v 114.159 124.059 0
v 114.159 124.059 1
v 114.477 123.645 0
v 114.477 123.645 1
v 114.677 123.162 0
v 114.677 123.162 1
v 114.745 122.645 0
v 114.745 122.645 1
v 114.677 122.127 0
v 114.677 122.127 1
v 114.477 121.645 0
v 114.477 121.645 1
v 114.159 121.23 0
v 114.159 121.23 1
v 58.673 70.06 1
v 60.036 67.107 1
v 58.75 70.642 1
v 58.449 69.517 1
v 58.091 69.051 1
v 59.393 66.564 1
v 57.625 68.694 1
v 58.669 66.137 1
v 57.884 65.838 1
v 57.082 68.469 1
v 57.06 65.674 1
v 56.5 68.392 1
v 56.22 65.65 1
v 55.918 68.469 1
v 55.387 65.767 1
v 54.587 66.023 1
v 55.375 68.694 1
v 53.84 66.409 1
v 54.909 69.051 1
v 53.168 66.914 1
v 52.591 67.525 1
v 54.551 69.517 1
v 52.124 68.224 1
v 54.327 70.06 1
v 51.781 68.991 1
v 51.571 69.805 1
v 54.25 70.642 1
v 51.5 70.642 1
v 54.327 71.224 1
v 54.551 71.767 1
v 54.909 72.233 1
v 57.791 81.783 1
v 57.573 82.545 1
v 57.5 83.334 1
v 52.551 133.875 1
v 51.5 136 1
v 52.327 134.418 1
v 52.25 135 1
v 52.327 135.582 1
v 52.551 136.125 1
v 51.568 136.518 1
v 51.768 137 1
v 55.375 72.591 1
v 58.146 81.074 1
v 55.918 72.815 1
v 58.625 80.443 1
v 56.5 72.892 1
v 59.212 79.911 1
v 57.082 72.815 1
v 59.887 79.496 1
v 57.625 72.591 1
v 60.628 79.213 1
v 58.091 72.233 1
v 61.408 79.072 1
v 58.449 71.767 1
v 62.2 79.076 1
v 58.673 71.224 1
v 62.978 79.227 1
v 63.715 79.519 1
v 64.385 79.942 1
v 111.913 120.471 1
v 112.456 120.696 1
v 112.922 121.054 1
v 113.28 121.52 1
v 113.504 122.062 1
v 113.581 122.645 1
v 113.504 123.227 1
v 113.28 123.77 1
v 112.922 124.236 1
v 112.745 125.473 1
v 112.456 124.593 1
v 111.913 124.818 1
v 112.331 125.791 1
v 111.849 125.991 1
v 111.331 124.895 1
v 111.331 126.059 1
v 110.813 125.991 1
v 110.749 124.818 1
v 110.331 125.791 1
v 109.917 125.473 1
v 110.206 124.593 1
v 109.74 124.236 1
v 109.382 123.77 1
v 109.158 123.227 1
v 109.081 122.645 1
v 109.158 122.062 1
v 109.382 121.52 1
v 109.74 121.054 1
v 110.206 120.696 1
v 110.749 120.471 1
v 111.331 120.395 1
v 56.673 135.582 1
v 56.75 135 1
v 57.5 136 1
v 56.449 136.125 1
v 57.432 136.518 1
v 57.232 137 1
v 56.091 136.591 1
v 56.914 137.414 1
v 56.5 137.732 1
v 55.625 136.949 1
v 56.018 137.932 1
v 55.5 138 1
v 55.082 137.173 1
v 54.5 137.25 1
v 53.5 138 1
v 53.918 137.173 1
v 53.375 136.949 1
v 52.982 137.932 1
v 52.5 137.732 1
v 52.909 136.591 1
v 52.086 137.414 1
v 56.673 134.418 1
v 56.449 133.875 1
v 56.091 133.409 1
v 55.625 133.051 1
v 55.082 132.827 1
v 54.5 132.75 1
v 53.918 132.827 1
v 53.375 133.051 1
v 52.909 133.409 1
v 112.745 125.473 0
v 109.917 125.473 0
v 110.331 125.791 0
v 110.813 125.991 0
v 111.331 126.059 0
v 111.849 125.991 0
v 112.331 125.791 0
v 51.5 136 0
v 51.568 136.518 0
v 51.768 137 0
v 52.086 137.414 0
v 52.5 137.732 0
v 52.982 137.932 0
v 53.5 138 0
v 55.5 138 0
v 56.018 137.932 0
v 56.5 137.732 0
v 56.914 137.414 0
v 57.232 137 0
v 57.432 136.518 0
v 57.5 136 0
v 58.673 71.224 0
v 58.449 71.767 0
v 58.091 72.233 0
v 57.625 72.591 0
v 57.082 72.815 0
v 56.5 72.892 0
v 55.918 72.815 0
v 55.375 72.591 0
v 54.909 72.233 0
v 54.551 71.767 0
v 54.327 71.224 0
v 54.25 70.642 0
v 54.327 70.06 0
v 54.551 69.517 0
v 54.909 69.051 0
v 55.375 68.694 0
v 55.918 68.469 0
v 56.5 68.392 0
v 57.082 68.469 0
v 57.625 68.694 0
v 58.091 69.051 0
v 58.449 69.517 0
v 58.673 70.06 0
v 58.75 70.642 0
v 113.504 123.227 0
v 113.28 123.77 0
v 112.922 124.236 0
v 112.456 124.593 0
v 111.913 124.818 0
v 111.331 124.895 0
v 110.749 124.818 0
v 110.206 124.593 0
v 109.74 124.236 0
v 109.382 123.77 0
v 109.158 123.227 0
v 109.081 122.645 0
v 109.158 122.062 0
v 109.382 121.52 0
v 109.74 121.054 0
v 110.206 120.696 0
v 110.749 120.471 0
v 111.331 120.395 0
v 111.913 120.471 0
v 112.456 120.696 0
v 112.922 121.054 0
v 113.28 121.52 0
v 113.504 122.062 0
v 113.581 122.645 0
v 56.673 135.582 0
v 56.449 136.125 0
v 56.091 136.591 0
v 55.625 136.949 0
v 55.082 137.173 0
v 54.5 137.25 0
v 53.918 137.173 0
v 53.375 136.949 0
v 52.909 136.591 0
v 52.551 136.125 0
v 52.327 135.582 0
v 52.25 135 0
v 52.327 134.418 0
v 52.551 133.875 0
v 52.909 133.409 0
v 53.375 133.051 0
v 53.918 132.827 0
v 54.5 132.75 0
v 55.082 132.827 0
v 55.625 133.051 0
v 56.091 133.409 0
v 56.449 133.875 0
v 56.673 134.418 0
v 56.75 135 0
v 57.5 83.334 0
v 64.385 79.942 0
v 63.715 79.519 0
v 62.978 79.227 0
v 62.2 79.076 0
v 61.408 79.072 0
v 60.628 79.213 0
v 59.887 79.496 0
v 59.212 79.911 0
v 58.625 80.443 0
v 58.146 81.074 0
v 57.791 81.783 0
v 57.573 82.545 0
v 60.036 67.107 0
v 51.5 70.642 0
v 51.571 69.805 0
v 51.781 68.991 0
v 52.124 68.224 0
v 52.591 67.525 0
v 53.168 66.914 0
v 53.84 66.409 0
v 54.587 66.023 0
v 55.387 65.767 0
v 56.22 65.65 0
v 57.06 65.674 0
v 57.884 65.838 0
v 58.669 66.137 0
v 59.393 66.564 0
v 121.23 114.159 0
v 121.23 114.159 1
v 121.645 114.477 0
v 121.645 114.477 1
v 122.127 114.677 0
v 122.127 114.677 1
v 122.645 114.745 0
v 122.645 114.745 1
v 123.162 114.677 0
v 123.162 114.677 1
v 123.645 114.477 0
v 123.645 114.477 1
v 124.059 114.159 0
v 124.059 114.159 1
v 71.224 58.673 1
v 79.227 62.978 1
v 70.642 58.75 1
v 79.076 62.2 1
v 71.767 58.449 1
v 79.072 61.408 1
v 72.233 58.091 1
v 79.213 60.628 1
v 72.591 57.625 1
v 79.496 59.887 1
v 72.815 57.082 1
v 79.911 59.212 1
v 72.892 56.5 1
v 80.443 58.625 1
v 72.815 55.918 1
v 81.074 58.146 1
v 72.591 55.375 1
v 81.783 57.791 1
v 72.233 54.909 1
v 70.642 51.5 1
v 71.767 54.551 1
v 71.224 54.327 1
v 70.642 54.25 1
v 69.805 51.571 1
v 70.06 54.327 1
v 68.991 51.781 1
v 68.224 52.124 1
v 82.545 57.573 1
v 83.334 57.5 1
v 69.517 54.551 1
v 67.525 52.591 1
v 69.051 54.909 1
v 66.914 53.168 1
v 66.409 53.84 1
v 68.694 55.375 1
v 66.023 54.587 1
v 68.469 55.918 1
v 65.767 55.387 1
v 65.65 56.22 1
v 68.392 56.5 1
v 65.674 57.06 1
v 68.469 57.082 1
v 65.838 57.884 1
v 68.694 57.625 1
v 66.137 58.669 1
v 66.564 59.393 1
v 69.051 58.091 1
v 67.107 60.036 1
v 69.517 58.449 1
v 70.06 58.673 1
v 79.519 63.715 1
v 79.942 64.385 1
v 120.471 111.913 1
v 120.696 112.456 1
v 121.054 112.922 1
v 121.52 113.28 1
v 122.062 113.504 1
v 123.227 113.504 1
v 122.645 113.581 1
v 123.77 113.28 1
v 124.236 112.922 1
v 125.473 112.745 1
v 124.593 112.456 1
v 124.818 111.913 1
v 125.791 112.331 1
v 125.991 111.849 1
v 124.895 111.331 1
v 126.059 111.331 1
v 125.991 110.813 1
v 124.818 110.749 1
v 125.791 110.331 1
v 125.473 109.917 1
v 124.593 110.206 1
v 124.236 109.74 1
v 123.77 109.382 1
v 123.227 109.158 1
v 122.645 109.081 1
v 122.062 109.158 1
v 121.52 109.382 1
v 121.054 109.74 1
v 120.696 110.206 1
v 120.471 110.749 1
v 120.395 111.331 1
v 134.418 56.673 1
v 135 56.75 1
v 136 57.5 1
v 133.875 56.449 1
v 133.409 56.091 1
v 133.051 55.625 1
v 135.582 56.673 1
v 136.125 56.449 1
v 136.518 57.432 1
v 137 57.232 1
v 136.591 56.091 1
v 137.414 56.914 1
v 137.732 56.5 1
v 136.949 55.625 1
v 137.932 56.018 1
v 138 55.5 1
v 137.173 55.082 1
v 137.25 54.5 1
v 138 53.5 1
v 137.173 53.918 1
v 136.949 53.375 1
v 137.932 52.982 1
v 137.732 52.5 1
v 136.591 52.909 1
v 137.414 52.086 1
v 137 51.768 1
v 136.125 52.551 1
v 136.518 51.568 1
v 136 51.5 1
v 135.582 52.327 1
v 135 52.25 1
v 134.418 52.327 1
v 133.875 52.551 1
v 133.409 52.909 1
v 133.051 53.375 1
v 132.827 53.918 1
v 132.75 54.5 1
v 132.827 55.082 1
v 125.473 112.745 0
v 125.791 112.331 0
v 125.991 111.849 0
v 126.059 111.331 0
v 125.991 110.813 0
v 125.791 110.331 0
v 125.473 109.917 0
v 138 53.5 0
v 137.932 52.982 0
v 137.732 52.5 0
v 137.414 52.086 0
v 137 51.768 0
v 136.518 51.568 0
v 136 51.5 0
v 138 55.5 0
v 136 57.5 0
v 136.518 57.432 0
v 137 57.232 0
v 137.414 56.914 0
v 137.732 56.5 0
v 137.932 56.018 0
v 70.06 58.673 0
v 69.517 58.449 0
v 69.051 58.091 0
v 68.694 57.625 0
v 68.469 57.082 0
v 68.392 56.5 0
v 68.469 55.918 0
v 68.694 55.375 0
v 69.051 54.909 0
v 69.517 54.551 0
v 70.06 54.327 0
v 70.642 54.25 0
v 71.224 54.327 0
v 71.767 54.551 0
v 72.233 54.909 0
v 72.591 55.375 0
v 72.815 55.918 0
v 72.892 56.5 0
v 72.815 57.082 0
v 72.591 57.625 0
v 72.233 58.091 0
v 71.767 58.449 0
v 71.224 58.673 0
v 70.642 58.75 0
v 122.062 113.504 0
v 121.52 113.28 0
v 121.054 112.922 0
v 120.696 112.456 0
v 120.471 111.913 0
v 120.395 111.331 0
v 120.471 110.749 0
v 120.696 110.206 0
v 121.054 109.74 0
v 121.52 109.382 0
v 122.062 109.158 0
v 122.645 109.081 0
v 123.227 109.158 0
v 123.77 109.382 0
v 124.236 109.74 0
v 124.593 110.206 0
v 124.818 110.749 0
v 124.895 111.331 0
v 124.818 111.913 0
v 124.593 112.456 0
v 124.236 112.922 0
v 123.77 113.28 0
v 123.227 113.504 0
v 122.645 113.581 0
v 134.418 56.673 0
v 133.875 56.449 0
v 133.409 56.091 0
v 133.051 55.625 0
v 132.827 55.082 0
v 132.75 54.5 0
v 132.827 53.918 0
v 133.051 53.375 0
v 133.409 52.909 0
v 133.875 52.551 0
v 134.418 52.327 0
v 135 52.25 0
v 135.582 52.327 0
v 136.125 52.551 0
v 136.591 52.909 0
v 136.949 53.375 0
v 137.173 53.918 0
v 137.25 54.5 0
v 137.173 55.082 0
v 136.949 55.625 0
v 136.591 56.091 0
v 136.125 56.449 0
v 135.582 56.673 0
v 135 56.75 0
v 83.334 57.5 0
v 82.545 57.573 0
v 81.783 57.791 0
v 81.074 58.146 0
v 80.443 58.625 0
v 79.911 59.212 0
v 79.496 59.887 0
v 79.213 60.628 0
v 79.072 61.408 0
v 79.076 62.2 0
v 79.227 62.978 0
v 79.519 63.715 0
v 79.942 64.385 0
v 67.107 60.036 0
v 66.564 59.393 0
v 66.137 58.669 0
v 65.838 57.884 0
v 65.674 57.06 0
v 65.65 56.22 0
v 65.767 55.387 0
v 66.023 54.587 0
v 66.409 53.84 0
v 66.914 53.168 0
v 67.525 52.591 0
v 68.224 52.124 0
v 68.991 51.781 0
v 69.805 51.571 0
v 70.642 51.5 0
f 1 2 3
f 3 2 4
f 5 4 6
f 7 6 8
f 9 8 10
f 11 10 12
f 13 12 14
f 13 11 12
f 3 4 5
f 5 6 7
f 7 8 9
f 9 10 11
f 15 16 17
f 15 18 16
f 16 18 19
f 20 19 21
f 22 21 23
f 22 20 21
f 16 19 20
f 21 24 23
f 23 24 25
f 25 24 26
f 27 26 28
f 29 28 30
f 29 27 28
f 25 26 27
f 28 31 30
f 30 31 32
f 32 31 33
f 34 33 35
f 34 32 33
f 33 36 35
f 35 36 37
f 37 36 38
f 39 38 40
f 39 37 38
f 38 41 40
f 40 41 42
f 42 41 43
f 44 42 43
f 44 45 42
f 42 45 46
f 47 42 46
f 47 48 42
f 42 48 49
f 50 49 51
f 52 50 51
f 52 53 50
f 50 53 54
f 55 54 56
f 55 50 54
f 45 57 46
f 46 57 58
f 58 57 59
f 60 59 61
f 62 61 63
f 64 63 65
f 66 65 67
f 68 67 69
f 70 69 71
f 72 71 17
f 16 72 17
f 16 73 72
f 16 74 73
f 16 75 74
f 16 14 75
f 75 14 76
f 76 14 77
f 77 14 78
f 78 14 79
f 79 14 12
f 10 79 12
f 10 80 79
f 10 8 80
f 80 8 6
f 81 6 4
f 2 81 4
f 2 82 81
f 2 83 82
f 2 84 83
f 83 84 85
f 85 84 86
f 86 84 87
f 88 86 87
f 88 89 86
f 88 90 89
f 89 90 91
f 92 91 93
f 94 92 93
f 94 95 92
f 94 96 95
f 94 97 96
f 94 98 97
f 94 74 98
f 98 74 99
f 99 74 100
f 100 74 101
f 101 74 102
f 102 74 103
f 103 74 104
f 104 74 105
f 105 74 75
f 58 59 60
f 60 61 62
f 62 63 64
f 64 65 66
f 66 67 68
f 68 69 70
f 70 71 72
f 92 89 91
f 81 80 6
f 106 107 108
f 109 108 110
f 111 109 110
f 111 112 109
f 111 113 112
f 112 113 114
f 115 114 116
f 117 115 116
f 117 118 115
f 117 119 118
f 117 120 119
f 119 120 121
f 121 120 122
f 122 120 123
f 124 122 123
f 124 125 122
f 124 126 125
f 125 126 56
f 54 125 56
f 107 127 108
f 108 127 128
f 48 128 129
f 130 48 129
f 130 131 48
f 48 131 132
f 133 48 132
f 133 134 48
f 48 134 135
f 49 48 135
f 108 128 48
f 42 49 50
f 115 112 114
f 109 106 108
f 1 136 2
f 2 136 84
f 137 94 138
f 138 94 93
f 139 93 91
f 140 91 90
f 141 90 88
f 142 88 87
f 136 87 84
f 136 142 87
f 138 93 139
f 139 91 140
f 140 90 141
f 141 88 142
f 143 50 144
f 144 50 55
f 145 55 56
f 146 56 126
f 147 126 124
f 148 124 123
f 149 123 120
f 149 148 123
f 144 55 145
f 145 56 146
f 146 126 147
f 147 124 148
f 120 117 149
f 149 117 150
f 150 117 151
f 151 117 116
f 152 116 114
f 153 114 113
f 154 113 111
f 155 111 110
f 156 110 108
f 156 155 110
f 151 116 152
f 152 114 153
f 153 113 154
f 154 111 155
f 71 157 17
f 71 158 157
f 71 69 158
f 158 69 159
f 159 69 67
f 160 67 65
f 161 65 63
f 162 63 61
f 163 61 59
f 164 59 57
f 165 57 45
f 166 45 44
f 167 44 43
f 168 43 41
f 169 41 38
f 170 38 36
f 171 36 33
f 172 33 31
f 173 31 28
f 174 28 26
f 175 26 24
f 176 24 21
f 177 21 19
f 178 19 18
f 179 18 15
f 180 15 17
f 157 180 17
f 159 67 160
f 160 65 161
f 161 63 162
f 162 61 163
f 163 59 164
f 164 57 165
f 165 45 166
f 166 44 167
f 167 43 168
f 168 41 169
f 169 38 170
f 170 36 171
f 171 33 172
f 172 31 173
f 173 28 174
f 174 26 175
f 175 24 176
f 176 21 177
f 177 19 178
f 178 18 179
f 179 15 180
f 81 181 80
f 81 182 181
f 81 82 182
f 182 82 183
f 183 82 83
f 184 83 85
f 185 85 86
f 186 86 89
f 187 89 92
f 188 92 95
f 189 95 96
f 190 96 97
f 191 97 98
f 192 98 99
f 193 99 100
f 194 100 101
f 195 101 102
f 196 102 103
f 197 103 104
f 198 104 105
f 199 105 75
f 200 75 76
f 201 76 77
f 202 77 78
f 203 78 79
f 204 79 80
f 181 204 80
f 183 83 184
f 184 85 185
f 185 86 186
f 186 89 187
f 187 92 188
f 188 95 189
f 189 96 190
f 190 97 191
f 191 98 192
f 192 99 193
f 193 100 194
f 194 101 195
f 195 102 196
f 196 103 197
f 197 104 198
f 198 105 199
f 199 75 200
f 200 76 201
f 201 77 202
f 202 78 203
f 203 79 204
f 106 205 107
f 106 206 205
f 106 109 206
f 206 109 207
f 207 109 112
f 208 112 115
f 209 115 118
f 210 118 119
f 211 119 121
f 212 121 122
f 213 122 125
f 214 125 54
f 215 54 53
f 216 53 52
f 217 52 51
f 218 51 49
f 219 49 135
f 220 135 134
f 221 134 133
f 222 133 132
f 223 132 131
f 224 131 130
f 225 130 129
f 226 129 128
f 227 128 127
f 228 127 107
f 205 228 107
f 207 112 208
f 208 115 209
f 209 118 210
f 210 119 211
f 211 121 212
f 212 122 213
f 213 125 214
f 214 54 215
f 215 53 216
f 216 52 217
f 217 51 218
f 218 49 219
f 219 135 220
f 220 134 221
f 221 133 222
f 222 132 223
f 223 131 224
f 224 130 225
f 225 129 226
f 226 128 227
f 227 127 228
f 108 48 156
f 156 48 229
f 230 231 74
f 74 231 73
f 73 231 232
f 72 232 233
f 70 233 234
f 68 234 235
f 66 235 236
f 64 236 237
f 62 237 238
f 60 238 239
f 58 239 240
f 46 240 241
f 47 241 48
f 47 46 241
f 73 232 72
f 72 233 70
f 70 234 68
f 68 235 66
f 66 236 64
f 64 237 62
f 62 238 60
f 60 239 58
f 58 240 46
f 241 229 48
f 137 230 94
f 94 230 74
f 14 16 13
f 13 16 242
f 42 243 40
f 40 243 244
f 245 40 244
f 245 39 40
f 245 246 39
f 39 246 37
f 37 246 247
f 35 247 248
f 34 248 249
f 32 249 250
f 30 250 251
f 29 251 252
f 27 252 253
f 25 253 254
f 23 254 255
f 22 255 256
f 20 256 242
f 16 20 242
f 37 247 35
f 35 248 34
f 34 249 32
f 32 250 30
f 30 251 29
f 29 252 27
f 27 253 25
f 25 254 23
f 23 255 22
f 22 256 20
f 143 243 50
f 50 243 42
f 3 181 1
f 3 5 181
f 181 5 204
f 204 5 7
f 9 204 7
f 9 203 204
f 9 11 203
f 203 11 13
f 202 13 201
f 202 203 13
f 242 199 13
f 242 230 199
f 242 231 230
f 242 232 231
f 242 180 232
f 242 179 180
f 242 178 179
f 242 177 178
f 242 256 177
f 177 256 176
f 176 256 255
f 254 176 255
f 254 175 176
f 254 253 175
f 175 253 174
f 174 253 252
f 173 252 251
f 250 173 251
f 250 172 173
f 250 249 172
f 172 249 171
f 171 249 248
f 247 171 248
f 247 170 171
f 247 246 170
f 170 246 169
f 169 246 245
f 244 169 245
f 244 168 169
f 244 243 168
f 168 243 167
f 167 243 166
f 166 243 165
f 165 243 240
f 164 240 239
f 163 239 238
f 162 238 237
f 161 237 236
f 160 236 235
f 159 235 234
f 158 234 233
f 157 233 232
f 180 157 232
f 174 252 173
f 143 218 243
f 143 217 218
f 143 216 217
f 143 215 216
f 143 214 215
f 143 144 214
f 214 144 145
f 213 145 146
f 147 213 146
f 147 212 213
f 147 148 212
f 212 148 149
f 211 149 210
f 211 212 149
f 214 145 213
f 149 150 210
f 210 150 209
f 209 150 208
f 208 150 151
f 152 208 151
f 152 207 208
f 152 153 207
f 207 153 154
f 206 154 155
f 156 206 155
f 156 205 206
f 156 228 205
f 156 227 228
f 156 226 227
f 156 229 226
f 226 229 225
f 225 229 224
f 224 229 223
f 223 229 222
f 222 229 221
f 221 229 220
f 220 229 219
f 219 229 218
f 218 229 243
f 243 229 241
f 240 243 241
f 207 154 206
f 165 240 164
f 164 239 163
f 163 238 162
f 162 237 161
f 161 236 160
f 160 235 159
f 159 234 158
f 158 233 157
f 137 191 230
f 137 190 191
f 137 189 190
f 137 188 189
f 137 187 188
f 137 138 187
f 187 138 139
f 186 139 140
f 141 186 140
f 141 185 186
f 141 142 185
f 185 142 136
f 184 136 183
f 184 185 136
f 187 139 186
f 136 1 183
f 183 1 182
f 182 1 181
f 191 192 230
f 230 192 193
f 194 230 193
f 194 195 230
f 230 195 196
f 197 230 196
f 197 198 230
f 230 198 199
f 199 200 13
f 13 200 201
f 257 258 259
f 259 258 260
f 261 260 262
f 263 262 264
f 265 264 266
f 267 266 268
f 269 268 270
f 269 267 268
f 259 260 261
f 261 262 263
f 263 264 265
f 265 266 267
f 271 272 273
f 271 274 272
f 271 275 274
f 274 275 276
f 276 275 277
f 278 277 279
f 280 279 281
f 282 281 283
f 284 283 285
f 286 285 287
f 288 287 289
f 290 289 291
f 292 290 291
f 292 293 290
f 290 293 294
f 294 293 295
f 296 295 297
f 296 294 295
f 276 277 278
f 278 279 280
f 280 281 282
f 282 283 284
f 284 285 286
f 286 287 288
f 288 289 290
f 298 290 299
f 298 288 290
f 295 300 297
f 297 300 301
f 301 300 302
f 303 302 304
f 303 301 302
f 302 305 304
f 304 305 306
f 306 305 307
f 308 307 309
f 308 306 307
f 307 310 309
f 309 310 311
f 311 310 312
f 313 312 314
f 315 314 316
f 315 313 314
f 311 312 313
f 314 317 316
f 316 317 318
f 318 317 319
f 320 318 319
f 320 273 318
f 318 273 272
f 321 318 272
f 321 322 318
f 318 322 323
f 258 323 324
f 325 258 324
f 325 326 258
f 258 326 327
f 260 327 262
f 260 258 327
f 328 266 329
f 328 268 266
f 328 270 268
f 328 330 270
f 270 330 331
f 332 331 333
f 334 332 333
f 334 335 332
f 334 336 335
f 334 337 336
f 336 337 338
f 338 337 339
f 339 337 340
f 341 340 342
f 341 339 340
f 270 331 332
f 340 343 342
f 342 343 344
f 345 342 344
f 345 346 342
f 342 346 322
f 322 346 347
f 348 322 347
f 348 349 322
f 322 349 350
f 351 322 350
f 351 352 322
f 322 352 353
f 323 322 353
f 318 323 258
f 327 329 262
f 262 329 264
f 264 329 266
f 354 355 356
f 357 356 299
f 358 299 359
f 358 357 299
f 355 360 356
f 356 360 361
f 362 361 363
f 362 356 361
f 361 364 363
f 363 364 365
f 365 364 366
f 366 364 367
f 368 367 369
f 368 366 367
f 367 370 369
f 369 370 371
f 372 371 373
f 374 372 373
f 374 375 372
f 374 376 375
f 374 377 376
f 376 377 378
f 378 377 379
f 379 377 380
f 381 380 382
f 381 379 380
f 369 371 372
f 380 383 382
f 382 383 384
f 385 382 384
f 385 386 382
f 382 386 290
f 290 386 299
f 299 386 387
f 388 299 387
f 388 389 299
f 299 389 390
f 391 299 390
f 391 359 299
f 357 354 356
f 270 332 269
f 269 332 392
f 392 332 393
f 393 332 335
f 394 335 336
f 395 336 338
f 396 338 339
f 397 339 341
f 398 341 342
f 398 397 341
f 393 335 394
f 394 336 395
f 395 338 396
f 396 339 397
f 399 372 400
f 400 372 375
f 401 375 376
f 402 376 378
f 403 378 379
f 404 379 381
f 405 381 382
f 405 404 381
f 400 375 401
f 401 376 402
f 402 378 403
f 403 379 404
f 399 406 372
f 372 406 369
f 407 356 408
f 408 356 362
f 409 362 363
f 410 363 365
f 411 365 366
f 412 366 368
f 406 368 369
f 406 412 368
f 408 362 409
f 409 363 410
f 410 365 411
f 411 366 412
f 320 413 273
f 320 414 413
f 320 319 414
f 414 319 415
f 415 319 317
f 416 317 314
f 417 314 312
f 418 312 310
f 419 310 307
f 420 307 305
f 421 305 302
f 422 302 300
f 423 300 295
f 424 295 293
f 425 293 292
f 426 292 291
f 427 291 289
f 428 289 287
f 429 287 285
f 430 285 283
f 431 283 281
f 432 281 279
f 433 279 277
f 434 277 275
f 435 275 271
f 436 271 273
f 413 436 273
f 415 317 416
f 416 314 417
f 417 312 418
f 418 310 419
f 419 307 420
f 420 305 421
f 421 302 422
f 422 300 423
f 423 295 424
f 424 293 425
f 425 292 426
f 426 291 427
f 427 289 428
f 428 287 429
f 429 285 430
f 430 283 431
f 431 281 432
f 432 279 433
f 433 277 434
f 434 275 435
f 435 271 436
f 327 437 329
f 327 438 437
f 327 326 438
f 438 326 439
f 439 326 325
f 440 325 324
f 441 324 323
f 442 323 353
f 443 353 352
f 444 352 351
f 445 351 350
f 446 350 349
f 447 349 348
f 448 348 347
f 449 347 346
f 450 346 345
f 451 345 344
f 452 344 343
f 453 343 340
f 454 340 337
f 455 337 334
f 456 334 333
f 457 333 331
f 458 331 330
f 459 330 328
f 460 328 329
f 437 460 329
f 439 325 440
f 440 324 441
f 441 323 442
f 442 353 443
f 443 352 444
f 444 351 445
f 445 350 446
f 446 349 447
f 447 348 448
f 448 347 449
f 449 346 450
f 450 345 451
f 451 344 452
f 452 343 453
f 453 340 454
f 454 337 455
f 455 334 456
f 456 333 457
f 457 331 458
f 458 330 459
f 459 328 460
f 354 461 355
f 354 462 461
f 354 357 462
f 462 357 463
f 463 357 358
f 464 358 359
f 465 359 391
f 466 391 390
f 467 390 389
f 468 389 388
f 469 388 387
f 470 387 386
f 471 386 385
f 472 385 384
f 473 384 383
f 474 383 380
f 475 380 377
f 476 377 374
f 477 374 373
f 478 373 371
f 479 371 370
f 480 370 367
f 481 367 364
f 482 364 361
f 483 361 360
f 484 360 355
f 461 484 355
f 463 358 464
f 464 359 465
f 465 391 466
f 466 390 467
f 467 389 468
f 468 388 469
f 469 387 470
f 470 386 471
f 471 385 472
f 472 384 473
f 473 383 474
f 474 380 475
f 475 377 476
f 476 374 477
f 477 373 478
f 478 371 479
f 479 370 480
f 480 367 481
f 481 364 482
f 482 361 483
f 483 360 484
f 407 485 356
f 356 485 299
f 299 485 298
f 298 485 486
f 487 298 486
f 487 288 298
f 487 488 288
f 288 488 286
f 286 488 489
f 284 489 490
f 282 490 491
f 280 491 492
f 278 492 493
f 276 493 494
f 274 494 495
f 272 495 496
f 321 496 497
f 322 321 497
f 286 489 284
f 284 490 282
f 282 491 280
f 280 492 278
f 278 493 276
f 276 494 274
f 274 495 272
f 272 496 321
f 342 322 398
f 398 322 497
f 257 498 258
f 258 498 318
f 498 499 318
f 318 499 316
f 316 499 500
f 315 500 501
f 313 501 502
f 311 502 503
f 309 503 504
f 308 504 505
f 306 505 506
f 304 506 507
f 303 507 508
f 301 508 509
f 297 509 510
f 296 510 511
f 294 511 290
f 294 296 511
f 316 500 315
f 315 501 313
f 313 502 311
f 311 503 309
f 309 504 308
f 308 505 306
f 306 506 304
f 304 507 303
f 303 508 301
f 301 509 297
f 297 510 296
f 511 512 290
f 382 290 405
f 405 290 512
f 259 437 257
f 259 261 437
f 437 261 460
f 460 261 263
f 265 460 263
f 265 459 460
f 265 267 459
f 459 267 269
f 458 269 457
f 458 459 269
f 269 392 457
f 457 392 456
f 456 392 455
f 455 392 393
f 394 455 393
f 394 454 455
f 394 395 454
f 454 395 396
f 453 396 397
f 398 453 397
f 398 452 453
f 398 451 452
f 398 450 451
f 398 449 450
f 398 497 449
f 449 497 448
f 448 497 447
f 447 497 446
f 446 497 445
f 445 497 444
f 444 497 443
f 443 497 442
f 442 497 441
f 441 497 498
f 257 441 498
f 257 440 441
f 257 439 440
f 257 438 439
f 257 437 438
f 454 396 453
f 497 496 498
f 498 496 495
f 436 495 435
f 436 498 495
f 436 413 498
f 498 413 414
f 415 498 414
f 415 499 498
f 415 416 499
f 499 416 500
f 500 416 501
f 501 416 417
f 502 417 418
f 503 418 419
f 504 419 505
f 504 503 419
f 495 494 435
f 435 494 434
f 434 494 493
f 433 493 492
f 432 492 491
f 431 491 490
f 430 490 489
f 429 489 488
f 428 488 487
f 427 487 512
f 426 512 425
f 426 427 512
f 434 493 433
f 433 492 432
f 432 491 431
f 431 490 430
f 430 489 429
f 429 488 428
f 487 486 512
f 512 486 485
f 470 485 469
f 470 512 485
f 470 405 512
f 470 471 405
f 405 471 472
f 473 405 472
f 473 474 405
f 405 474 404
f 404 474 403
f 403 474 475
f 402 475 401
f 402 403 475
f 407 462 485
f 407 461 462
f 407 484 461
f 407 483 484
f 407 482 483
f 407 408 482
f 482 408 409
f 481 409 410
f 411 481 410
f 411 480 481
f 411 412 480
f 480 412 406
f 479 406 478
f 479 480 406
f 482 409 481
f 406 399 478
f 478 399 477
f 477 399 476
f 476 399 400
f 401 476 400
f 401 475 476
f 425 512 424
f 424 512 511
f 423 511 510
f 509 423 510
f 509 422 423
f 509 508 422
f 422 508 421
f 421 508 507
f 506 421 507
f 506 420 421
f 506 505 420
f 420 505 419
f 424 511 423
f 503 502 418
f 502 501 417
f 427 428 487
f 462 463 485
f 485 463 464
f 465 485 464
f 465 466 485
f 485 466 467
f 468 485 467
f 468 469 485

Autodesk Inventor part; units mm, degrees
ref_plane "YZ Plane" through (0, 0, 0) normal (1, 0, 0) x (0, 1, 0)
ref_plane "XZ Plane" through (0, 0, 0) normal (0, 1, 0) x (-1, 0, 0)
sketch "Sketch1" plane through (0, 0, 0) normal (0, 0, 1) x (1, 0, 0)
  line L0 (-41.5, 58) -> (41.5, 58)
  line L1 (41.5, 58) -> (41.5, 158)
  line L2 (41.5, 158) -> (-41.5, 158)
  line L3 (-41.5, 158) -> (-41.5, 58)
  line L4 (58, 41.5) -> (158, 41.5)
  line L5 (158, 41.5) -> (158, -41.5)
  line L6 (158, -41.5) -> (58, -41.5)
  line L7 (58, -41.5) -> (58, 41.5)
  line L8 (-131.1952, 0) -> (204.4844, 0) construction
  line L9 (-48, 48) -> (48, 48)
  line L10 (48, 48) -> (48, -48)
  line L11 (48, -48) -> (-48, -48)
  line L12 (-48, -48) -> (-48, 48)
  line L13 (0, 180.9439) -> (0, -136.3054) construction
  point P0 (0, 0)
  point P1 (-48, 0)
  point P2 (0, 48)
  point P3 (0, 58)
  point P4 (58, 0)
  dimension "d0" = 83
  dimension "d1" = 100
  dimension "d2" = 100
  dimension "d3" = 83
  dimension "d5" = 96
  dimension "d6" = 96
  dimension "d7" = 10
  dimension "d8" = 10
sketch "Sketch2" plane through (0, 0, 0) normal (0, 0, 1) x (1, 0, 0)
  line L0 (41.5, 158) -> (-41.5, 158) projected
  line L1 (41.5, 58) -> (41.5, 158) projected
  line L2 (-48, 48) -> (48, 48) projected
  line L3 (48, 48) -> (48, -48) projected
  line L4 (58, -41.5) -> (58, 41.5) projected
  line L5 (58, 41.5) -> (158, 41.5) projected
  line L6 (-41.5, 58) -> (41.5, 58) projected
  line L7 (158, 41.5) -> (158, -41.5) projected
  line L8 (48, 48) -> (136.7868, 136.7868) construction
  line L9 (35.5, 78) -> (57.5, 78)
  line L10 (57.5, 78) -> (57.5, 138)
  line L11 (57.5, 138) -> (35.5, 138)
  line L12 (35.5, 138) -> (35.5, 78)
  line L13 (41.5, 108) -> (-41.5, 108) construction
  line L14 (108, 41.5) -> (108, -41.5) construction
  line L15 (41.5, 158) -> (220.1006, 158) construction
  line L16 (158, 41.5) -> (158, 206.0131) construction
  line L17 (115.5736, 158) -> (158, 115.5736) construction
  line L18 (41.5, 138) -> (41.5, 78) construction
  line L19 (51.5, 138) -> (51.5, 78) construction
  line L20 (46.5, 138) -> (46.5, 78) construction
  line L21 (51.5, 158) -> (51.5, 70.6421)
  line L22 (60.0355, 67.1066) -> (133.2513, 140.3223)
  arc A0 (51.5, 158) -> (133.2513, 140.3223) centre (109.2071, 226.9991) ccw
  line L23 (68.9045, 84.4609) -> (84.4609, 68.9045)
  line L24 (84.4609, 68.9045) -> (126.8873, 111.331)
  line L25 (126.8873, 111.331) -> (111.331, 126.8873)
  line L26 (111.331, 126.8873) -> (68.9045, 84.4609)
  line L27 (80.2183, 73.1472) -> (122.6447, 115.5736) construction
  line L28 (105.6741, 90.1177) -> (90.1177, 105.6741) construction
  line L29 (73.1472, 80.2183) -> (115.5736, 122.6447) construction
  line L30 (76.6827, 76.6827) -> (119.1091, 119.1091) construction
  circle A1 centre (73.1472, 84.4609) radius 2.25
  circle A2 centre (111.331, 122.6447) radius 2.25
  circle A3 centre (84.4609, 73.1472) radius 2.25
  circle A4 centre (122.6447, 111.331) radius 2.25
  circle A5 centre (38.5, 135) radius 2.25
  circle A6 centre (38.5, 81) radius 2.25
  circle A7 centre (54.5, 135) radius 2.25
  circle A8 centre (54.5, 81) radius 2.25
  arc A9 (51.5, 70.6421) -> (60.0355, 67.1066) centre (56.5, 70.6421) ccw
  point P0 (0, 0)
  point P1 (158, 158)
  dimension "d23" = 30
  dimension "d25" = 45
  dimension "d30" = 10
  dimension "d37" = 10
  dimension "d38" = 60
  dimension "d39" = 4.5
  dimension "d40" = 3
  dimension "d42" = 4.5
  dimension "d43" = 3
  dimension "d46" = 60
  dimension "d47" = 30
  dimension "d48" = 4.5
  dimension "d49" = 3
  dimension "d50" = 3
  dimension "d51" = 4.5
  dimension "d52" = 3
  dimension "d53" = 3
  dimension "d54" = 5
  dimension "d55" = 25
  dimension "d57" = 3
  dimension "d58" = 3
  dimension "d59" = 3
  dimension "d60" = 3
sketch "Sketch6" plane through (0, 0, 0) normal (0, 0, 1) x (1, 0, 0)
  line L0 (35.5, 78) -> (57.5, 78) projected
  circle A0 centre (54.5, 135) radius 2.25 projected
  line L1 (111.331, 126.8873) -> (68.9045, 84.4609) projected
  circle A1 centre (111.331, 122.6447) radius 2.25 projected
  line L2 (60.0355, 67.1066) -> (133.2513, 140.3223) projected
  arc A2 (51.5, 70.6421) -> (60.0355, 67.1066) centre (56.5, 70.6421) ccw projected
  line L3 (51.5, 158) -> (51.5, 70.6421) projected
  arc A3 (51.5, 158) -> (133.2513, 140.3223) centre (109.2071, 226.9991) ccw projected
  line L4 (119.1091, 119.1091) -> (76.6827, 76.6827) construction
  circle A4 centre (54.5, 135) radius 2.25
  circle A5 centre (111.331, 122.6447) radius 2.25
  circle A6 centre (56.5, 70.6421) radius 2.25
  line L5 (57.5, 138) -> (51.5, 138)
  line L6 (57.5, 138) -> (57.5, 83.3339)
  line L7 (111.331, 126.8873) -> (64.3853, 79.9416)
  line L8 (111.331, 126.8873) -> (115.5736, 122.6447)
  arc A7 (51.5, 70.6421) -> (60.0355, 67.1066) centre (56.5, 70.6421) ccw
  arc A8 (57.5, 83.3339) -> (64.3853, 79.9416) centre (61.7783, 83.3339) ccw
  line L9 (51.5, 138) -> (51.5, 70.6421)
  line L10 (115.5736, 122.6447) -> (60.0355, 67.1066)
  point P0 (0, 0)
  point P1 (38.5, 81)
  point P2 (38.5, 135)
  point P3 (126.8873, 111.331)
  point P4 (84.4609, 68.9045)
  dimension "d99" = 4.5
extrude "Extrusion13" add sketch "Sketch6" along normal blind 1 contours L8 L2 A2 L3 L5 L6 A8 L7 L1
fillet "Fillet1" radius 2 4 edges at (57.5, 138, 0.5) (51.5, 138, 0.5) (111.331, 126.8873, 0.5) (115.5736, 122.6447, 0.5)
ref_plane "Work Plane5" through (119.1091, 119.1091, 0) normal (-0.7071, 0.7071, 0) x (-0.7071, -0.7071, 0)
mirror "Mirror6" about plane through (119.1091, 119.1091, 0) normal (-0.7071, 0.7071, 0) of "Extrusion13", "Fillet1"
properties part number "SolarFolds_Sketch"
